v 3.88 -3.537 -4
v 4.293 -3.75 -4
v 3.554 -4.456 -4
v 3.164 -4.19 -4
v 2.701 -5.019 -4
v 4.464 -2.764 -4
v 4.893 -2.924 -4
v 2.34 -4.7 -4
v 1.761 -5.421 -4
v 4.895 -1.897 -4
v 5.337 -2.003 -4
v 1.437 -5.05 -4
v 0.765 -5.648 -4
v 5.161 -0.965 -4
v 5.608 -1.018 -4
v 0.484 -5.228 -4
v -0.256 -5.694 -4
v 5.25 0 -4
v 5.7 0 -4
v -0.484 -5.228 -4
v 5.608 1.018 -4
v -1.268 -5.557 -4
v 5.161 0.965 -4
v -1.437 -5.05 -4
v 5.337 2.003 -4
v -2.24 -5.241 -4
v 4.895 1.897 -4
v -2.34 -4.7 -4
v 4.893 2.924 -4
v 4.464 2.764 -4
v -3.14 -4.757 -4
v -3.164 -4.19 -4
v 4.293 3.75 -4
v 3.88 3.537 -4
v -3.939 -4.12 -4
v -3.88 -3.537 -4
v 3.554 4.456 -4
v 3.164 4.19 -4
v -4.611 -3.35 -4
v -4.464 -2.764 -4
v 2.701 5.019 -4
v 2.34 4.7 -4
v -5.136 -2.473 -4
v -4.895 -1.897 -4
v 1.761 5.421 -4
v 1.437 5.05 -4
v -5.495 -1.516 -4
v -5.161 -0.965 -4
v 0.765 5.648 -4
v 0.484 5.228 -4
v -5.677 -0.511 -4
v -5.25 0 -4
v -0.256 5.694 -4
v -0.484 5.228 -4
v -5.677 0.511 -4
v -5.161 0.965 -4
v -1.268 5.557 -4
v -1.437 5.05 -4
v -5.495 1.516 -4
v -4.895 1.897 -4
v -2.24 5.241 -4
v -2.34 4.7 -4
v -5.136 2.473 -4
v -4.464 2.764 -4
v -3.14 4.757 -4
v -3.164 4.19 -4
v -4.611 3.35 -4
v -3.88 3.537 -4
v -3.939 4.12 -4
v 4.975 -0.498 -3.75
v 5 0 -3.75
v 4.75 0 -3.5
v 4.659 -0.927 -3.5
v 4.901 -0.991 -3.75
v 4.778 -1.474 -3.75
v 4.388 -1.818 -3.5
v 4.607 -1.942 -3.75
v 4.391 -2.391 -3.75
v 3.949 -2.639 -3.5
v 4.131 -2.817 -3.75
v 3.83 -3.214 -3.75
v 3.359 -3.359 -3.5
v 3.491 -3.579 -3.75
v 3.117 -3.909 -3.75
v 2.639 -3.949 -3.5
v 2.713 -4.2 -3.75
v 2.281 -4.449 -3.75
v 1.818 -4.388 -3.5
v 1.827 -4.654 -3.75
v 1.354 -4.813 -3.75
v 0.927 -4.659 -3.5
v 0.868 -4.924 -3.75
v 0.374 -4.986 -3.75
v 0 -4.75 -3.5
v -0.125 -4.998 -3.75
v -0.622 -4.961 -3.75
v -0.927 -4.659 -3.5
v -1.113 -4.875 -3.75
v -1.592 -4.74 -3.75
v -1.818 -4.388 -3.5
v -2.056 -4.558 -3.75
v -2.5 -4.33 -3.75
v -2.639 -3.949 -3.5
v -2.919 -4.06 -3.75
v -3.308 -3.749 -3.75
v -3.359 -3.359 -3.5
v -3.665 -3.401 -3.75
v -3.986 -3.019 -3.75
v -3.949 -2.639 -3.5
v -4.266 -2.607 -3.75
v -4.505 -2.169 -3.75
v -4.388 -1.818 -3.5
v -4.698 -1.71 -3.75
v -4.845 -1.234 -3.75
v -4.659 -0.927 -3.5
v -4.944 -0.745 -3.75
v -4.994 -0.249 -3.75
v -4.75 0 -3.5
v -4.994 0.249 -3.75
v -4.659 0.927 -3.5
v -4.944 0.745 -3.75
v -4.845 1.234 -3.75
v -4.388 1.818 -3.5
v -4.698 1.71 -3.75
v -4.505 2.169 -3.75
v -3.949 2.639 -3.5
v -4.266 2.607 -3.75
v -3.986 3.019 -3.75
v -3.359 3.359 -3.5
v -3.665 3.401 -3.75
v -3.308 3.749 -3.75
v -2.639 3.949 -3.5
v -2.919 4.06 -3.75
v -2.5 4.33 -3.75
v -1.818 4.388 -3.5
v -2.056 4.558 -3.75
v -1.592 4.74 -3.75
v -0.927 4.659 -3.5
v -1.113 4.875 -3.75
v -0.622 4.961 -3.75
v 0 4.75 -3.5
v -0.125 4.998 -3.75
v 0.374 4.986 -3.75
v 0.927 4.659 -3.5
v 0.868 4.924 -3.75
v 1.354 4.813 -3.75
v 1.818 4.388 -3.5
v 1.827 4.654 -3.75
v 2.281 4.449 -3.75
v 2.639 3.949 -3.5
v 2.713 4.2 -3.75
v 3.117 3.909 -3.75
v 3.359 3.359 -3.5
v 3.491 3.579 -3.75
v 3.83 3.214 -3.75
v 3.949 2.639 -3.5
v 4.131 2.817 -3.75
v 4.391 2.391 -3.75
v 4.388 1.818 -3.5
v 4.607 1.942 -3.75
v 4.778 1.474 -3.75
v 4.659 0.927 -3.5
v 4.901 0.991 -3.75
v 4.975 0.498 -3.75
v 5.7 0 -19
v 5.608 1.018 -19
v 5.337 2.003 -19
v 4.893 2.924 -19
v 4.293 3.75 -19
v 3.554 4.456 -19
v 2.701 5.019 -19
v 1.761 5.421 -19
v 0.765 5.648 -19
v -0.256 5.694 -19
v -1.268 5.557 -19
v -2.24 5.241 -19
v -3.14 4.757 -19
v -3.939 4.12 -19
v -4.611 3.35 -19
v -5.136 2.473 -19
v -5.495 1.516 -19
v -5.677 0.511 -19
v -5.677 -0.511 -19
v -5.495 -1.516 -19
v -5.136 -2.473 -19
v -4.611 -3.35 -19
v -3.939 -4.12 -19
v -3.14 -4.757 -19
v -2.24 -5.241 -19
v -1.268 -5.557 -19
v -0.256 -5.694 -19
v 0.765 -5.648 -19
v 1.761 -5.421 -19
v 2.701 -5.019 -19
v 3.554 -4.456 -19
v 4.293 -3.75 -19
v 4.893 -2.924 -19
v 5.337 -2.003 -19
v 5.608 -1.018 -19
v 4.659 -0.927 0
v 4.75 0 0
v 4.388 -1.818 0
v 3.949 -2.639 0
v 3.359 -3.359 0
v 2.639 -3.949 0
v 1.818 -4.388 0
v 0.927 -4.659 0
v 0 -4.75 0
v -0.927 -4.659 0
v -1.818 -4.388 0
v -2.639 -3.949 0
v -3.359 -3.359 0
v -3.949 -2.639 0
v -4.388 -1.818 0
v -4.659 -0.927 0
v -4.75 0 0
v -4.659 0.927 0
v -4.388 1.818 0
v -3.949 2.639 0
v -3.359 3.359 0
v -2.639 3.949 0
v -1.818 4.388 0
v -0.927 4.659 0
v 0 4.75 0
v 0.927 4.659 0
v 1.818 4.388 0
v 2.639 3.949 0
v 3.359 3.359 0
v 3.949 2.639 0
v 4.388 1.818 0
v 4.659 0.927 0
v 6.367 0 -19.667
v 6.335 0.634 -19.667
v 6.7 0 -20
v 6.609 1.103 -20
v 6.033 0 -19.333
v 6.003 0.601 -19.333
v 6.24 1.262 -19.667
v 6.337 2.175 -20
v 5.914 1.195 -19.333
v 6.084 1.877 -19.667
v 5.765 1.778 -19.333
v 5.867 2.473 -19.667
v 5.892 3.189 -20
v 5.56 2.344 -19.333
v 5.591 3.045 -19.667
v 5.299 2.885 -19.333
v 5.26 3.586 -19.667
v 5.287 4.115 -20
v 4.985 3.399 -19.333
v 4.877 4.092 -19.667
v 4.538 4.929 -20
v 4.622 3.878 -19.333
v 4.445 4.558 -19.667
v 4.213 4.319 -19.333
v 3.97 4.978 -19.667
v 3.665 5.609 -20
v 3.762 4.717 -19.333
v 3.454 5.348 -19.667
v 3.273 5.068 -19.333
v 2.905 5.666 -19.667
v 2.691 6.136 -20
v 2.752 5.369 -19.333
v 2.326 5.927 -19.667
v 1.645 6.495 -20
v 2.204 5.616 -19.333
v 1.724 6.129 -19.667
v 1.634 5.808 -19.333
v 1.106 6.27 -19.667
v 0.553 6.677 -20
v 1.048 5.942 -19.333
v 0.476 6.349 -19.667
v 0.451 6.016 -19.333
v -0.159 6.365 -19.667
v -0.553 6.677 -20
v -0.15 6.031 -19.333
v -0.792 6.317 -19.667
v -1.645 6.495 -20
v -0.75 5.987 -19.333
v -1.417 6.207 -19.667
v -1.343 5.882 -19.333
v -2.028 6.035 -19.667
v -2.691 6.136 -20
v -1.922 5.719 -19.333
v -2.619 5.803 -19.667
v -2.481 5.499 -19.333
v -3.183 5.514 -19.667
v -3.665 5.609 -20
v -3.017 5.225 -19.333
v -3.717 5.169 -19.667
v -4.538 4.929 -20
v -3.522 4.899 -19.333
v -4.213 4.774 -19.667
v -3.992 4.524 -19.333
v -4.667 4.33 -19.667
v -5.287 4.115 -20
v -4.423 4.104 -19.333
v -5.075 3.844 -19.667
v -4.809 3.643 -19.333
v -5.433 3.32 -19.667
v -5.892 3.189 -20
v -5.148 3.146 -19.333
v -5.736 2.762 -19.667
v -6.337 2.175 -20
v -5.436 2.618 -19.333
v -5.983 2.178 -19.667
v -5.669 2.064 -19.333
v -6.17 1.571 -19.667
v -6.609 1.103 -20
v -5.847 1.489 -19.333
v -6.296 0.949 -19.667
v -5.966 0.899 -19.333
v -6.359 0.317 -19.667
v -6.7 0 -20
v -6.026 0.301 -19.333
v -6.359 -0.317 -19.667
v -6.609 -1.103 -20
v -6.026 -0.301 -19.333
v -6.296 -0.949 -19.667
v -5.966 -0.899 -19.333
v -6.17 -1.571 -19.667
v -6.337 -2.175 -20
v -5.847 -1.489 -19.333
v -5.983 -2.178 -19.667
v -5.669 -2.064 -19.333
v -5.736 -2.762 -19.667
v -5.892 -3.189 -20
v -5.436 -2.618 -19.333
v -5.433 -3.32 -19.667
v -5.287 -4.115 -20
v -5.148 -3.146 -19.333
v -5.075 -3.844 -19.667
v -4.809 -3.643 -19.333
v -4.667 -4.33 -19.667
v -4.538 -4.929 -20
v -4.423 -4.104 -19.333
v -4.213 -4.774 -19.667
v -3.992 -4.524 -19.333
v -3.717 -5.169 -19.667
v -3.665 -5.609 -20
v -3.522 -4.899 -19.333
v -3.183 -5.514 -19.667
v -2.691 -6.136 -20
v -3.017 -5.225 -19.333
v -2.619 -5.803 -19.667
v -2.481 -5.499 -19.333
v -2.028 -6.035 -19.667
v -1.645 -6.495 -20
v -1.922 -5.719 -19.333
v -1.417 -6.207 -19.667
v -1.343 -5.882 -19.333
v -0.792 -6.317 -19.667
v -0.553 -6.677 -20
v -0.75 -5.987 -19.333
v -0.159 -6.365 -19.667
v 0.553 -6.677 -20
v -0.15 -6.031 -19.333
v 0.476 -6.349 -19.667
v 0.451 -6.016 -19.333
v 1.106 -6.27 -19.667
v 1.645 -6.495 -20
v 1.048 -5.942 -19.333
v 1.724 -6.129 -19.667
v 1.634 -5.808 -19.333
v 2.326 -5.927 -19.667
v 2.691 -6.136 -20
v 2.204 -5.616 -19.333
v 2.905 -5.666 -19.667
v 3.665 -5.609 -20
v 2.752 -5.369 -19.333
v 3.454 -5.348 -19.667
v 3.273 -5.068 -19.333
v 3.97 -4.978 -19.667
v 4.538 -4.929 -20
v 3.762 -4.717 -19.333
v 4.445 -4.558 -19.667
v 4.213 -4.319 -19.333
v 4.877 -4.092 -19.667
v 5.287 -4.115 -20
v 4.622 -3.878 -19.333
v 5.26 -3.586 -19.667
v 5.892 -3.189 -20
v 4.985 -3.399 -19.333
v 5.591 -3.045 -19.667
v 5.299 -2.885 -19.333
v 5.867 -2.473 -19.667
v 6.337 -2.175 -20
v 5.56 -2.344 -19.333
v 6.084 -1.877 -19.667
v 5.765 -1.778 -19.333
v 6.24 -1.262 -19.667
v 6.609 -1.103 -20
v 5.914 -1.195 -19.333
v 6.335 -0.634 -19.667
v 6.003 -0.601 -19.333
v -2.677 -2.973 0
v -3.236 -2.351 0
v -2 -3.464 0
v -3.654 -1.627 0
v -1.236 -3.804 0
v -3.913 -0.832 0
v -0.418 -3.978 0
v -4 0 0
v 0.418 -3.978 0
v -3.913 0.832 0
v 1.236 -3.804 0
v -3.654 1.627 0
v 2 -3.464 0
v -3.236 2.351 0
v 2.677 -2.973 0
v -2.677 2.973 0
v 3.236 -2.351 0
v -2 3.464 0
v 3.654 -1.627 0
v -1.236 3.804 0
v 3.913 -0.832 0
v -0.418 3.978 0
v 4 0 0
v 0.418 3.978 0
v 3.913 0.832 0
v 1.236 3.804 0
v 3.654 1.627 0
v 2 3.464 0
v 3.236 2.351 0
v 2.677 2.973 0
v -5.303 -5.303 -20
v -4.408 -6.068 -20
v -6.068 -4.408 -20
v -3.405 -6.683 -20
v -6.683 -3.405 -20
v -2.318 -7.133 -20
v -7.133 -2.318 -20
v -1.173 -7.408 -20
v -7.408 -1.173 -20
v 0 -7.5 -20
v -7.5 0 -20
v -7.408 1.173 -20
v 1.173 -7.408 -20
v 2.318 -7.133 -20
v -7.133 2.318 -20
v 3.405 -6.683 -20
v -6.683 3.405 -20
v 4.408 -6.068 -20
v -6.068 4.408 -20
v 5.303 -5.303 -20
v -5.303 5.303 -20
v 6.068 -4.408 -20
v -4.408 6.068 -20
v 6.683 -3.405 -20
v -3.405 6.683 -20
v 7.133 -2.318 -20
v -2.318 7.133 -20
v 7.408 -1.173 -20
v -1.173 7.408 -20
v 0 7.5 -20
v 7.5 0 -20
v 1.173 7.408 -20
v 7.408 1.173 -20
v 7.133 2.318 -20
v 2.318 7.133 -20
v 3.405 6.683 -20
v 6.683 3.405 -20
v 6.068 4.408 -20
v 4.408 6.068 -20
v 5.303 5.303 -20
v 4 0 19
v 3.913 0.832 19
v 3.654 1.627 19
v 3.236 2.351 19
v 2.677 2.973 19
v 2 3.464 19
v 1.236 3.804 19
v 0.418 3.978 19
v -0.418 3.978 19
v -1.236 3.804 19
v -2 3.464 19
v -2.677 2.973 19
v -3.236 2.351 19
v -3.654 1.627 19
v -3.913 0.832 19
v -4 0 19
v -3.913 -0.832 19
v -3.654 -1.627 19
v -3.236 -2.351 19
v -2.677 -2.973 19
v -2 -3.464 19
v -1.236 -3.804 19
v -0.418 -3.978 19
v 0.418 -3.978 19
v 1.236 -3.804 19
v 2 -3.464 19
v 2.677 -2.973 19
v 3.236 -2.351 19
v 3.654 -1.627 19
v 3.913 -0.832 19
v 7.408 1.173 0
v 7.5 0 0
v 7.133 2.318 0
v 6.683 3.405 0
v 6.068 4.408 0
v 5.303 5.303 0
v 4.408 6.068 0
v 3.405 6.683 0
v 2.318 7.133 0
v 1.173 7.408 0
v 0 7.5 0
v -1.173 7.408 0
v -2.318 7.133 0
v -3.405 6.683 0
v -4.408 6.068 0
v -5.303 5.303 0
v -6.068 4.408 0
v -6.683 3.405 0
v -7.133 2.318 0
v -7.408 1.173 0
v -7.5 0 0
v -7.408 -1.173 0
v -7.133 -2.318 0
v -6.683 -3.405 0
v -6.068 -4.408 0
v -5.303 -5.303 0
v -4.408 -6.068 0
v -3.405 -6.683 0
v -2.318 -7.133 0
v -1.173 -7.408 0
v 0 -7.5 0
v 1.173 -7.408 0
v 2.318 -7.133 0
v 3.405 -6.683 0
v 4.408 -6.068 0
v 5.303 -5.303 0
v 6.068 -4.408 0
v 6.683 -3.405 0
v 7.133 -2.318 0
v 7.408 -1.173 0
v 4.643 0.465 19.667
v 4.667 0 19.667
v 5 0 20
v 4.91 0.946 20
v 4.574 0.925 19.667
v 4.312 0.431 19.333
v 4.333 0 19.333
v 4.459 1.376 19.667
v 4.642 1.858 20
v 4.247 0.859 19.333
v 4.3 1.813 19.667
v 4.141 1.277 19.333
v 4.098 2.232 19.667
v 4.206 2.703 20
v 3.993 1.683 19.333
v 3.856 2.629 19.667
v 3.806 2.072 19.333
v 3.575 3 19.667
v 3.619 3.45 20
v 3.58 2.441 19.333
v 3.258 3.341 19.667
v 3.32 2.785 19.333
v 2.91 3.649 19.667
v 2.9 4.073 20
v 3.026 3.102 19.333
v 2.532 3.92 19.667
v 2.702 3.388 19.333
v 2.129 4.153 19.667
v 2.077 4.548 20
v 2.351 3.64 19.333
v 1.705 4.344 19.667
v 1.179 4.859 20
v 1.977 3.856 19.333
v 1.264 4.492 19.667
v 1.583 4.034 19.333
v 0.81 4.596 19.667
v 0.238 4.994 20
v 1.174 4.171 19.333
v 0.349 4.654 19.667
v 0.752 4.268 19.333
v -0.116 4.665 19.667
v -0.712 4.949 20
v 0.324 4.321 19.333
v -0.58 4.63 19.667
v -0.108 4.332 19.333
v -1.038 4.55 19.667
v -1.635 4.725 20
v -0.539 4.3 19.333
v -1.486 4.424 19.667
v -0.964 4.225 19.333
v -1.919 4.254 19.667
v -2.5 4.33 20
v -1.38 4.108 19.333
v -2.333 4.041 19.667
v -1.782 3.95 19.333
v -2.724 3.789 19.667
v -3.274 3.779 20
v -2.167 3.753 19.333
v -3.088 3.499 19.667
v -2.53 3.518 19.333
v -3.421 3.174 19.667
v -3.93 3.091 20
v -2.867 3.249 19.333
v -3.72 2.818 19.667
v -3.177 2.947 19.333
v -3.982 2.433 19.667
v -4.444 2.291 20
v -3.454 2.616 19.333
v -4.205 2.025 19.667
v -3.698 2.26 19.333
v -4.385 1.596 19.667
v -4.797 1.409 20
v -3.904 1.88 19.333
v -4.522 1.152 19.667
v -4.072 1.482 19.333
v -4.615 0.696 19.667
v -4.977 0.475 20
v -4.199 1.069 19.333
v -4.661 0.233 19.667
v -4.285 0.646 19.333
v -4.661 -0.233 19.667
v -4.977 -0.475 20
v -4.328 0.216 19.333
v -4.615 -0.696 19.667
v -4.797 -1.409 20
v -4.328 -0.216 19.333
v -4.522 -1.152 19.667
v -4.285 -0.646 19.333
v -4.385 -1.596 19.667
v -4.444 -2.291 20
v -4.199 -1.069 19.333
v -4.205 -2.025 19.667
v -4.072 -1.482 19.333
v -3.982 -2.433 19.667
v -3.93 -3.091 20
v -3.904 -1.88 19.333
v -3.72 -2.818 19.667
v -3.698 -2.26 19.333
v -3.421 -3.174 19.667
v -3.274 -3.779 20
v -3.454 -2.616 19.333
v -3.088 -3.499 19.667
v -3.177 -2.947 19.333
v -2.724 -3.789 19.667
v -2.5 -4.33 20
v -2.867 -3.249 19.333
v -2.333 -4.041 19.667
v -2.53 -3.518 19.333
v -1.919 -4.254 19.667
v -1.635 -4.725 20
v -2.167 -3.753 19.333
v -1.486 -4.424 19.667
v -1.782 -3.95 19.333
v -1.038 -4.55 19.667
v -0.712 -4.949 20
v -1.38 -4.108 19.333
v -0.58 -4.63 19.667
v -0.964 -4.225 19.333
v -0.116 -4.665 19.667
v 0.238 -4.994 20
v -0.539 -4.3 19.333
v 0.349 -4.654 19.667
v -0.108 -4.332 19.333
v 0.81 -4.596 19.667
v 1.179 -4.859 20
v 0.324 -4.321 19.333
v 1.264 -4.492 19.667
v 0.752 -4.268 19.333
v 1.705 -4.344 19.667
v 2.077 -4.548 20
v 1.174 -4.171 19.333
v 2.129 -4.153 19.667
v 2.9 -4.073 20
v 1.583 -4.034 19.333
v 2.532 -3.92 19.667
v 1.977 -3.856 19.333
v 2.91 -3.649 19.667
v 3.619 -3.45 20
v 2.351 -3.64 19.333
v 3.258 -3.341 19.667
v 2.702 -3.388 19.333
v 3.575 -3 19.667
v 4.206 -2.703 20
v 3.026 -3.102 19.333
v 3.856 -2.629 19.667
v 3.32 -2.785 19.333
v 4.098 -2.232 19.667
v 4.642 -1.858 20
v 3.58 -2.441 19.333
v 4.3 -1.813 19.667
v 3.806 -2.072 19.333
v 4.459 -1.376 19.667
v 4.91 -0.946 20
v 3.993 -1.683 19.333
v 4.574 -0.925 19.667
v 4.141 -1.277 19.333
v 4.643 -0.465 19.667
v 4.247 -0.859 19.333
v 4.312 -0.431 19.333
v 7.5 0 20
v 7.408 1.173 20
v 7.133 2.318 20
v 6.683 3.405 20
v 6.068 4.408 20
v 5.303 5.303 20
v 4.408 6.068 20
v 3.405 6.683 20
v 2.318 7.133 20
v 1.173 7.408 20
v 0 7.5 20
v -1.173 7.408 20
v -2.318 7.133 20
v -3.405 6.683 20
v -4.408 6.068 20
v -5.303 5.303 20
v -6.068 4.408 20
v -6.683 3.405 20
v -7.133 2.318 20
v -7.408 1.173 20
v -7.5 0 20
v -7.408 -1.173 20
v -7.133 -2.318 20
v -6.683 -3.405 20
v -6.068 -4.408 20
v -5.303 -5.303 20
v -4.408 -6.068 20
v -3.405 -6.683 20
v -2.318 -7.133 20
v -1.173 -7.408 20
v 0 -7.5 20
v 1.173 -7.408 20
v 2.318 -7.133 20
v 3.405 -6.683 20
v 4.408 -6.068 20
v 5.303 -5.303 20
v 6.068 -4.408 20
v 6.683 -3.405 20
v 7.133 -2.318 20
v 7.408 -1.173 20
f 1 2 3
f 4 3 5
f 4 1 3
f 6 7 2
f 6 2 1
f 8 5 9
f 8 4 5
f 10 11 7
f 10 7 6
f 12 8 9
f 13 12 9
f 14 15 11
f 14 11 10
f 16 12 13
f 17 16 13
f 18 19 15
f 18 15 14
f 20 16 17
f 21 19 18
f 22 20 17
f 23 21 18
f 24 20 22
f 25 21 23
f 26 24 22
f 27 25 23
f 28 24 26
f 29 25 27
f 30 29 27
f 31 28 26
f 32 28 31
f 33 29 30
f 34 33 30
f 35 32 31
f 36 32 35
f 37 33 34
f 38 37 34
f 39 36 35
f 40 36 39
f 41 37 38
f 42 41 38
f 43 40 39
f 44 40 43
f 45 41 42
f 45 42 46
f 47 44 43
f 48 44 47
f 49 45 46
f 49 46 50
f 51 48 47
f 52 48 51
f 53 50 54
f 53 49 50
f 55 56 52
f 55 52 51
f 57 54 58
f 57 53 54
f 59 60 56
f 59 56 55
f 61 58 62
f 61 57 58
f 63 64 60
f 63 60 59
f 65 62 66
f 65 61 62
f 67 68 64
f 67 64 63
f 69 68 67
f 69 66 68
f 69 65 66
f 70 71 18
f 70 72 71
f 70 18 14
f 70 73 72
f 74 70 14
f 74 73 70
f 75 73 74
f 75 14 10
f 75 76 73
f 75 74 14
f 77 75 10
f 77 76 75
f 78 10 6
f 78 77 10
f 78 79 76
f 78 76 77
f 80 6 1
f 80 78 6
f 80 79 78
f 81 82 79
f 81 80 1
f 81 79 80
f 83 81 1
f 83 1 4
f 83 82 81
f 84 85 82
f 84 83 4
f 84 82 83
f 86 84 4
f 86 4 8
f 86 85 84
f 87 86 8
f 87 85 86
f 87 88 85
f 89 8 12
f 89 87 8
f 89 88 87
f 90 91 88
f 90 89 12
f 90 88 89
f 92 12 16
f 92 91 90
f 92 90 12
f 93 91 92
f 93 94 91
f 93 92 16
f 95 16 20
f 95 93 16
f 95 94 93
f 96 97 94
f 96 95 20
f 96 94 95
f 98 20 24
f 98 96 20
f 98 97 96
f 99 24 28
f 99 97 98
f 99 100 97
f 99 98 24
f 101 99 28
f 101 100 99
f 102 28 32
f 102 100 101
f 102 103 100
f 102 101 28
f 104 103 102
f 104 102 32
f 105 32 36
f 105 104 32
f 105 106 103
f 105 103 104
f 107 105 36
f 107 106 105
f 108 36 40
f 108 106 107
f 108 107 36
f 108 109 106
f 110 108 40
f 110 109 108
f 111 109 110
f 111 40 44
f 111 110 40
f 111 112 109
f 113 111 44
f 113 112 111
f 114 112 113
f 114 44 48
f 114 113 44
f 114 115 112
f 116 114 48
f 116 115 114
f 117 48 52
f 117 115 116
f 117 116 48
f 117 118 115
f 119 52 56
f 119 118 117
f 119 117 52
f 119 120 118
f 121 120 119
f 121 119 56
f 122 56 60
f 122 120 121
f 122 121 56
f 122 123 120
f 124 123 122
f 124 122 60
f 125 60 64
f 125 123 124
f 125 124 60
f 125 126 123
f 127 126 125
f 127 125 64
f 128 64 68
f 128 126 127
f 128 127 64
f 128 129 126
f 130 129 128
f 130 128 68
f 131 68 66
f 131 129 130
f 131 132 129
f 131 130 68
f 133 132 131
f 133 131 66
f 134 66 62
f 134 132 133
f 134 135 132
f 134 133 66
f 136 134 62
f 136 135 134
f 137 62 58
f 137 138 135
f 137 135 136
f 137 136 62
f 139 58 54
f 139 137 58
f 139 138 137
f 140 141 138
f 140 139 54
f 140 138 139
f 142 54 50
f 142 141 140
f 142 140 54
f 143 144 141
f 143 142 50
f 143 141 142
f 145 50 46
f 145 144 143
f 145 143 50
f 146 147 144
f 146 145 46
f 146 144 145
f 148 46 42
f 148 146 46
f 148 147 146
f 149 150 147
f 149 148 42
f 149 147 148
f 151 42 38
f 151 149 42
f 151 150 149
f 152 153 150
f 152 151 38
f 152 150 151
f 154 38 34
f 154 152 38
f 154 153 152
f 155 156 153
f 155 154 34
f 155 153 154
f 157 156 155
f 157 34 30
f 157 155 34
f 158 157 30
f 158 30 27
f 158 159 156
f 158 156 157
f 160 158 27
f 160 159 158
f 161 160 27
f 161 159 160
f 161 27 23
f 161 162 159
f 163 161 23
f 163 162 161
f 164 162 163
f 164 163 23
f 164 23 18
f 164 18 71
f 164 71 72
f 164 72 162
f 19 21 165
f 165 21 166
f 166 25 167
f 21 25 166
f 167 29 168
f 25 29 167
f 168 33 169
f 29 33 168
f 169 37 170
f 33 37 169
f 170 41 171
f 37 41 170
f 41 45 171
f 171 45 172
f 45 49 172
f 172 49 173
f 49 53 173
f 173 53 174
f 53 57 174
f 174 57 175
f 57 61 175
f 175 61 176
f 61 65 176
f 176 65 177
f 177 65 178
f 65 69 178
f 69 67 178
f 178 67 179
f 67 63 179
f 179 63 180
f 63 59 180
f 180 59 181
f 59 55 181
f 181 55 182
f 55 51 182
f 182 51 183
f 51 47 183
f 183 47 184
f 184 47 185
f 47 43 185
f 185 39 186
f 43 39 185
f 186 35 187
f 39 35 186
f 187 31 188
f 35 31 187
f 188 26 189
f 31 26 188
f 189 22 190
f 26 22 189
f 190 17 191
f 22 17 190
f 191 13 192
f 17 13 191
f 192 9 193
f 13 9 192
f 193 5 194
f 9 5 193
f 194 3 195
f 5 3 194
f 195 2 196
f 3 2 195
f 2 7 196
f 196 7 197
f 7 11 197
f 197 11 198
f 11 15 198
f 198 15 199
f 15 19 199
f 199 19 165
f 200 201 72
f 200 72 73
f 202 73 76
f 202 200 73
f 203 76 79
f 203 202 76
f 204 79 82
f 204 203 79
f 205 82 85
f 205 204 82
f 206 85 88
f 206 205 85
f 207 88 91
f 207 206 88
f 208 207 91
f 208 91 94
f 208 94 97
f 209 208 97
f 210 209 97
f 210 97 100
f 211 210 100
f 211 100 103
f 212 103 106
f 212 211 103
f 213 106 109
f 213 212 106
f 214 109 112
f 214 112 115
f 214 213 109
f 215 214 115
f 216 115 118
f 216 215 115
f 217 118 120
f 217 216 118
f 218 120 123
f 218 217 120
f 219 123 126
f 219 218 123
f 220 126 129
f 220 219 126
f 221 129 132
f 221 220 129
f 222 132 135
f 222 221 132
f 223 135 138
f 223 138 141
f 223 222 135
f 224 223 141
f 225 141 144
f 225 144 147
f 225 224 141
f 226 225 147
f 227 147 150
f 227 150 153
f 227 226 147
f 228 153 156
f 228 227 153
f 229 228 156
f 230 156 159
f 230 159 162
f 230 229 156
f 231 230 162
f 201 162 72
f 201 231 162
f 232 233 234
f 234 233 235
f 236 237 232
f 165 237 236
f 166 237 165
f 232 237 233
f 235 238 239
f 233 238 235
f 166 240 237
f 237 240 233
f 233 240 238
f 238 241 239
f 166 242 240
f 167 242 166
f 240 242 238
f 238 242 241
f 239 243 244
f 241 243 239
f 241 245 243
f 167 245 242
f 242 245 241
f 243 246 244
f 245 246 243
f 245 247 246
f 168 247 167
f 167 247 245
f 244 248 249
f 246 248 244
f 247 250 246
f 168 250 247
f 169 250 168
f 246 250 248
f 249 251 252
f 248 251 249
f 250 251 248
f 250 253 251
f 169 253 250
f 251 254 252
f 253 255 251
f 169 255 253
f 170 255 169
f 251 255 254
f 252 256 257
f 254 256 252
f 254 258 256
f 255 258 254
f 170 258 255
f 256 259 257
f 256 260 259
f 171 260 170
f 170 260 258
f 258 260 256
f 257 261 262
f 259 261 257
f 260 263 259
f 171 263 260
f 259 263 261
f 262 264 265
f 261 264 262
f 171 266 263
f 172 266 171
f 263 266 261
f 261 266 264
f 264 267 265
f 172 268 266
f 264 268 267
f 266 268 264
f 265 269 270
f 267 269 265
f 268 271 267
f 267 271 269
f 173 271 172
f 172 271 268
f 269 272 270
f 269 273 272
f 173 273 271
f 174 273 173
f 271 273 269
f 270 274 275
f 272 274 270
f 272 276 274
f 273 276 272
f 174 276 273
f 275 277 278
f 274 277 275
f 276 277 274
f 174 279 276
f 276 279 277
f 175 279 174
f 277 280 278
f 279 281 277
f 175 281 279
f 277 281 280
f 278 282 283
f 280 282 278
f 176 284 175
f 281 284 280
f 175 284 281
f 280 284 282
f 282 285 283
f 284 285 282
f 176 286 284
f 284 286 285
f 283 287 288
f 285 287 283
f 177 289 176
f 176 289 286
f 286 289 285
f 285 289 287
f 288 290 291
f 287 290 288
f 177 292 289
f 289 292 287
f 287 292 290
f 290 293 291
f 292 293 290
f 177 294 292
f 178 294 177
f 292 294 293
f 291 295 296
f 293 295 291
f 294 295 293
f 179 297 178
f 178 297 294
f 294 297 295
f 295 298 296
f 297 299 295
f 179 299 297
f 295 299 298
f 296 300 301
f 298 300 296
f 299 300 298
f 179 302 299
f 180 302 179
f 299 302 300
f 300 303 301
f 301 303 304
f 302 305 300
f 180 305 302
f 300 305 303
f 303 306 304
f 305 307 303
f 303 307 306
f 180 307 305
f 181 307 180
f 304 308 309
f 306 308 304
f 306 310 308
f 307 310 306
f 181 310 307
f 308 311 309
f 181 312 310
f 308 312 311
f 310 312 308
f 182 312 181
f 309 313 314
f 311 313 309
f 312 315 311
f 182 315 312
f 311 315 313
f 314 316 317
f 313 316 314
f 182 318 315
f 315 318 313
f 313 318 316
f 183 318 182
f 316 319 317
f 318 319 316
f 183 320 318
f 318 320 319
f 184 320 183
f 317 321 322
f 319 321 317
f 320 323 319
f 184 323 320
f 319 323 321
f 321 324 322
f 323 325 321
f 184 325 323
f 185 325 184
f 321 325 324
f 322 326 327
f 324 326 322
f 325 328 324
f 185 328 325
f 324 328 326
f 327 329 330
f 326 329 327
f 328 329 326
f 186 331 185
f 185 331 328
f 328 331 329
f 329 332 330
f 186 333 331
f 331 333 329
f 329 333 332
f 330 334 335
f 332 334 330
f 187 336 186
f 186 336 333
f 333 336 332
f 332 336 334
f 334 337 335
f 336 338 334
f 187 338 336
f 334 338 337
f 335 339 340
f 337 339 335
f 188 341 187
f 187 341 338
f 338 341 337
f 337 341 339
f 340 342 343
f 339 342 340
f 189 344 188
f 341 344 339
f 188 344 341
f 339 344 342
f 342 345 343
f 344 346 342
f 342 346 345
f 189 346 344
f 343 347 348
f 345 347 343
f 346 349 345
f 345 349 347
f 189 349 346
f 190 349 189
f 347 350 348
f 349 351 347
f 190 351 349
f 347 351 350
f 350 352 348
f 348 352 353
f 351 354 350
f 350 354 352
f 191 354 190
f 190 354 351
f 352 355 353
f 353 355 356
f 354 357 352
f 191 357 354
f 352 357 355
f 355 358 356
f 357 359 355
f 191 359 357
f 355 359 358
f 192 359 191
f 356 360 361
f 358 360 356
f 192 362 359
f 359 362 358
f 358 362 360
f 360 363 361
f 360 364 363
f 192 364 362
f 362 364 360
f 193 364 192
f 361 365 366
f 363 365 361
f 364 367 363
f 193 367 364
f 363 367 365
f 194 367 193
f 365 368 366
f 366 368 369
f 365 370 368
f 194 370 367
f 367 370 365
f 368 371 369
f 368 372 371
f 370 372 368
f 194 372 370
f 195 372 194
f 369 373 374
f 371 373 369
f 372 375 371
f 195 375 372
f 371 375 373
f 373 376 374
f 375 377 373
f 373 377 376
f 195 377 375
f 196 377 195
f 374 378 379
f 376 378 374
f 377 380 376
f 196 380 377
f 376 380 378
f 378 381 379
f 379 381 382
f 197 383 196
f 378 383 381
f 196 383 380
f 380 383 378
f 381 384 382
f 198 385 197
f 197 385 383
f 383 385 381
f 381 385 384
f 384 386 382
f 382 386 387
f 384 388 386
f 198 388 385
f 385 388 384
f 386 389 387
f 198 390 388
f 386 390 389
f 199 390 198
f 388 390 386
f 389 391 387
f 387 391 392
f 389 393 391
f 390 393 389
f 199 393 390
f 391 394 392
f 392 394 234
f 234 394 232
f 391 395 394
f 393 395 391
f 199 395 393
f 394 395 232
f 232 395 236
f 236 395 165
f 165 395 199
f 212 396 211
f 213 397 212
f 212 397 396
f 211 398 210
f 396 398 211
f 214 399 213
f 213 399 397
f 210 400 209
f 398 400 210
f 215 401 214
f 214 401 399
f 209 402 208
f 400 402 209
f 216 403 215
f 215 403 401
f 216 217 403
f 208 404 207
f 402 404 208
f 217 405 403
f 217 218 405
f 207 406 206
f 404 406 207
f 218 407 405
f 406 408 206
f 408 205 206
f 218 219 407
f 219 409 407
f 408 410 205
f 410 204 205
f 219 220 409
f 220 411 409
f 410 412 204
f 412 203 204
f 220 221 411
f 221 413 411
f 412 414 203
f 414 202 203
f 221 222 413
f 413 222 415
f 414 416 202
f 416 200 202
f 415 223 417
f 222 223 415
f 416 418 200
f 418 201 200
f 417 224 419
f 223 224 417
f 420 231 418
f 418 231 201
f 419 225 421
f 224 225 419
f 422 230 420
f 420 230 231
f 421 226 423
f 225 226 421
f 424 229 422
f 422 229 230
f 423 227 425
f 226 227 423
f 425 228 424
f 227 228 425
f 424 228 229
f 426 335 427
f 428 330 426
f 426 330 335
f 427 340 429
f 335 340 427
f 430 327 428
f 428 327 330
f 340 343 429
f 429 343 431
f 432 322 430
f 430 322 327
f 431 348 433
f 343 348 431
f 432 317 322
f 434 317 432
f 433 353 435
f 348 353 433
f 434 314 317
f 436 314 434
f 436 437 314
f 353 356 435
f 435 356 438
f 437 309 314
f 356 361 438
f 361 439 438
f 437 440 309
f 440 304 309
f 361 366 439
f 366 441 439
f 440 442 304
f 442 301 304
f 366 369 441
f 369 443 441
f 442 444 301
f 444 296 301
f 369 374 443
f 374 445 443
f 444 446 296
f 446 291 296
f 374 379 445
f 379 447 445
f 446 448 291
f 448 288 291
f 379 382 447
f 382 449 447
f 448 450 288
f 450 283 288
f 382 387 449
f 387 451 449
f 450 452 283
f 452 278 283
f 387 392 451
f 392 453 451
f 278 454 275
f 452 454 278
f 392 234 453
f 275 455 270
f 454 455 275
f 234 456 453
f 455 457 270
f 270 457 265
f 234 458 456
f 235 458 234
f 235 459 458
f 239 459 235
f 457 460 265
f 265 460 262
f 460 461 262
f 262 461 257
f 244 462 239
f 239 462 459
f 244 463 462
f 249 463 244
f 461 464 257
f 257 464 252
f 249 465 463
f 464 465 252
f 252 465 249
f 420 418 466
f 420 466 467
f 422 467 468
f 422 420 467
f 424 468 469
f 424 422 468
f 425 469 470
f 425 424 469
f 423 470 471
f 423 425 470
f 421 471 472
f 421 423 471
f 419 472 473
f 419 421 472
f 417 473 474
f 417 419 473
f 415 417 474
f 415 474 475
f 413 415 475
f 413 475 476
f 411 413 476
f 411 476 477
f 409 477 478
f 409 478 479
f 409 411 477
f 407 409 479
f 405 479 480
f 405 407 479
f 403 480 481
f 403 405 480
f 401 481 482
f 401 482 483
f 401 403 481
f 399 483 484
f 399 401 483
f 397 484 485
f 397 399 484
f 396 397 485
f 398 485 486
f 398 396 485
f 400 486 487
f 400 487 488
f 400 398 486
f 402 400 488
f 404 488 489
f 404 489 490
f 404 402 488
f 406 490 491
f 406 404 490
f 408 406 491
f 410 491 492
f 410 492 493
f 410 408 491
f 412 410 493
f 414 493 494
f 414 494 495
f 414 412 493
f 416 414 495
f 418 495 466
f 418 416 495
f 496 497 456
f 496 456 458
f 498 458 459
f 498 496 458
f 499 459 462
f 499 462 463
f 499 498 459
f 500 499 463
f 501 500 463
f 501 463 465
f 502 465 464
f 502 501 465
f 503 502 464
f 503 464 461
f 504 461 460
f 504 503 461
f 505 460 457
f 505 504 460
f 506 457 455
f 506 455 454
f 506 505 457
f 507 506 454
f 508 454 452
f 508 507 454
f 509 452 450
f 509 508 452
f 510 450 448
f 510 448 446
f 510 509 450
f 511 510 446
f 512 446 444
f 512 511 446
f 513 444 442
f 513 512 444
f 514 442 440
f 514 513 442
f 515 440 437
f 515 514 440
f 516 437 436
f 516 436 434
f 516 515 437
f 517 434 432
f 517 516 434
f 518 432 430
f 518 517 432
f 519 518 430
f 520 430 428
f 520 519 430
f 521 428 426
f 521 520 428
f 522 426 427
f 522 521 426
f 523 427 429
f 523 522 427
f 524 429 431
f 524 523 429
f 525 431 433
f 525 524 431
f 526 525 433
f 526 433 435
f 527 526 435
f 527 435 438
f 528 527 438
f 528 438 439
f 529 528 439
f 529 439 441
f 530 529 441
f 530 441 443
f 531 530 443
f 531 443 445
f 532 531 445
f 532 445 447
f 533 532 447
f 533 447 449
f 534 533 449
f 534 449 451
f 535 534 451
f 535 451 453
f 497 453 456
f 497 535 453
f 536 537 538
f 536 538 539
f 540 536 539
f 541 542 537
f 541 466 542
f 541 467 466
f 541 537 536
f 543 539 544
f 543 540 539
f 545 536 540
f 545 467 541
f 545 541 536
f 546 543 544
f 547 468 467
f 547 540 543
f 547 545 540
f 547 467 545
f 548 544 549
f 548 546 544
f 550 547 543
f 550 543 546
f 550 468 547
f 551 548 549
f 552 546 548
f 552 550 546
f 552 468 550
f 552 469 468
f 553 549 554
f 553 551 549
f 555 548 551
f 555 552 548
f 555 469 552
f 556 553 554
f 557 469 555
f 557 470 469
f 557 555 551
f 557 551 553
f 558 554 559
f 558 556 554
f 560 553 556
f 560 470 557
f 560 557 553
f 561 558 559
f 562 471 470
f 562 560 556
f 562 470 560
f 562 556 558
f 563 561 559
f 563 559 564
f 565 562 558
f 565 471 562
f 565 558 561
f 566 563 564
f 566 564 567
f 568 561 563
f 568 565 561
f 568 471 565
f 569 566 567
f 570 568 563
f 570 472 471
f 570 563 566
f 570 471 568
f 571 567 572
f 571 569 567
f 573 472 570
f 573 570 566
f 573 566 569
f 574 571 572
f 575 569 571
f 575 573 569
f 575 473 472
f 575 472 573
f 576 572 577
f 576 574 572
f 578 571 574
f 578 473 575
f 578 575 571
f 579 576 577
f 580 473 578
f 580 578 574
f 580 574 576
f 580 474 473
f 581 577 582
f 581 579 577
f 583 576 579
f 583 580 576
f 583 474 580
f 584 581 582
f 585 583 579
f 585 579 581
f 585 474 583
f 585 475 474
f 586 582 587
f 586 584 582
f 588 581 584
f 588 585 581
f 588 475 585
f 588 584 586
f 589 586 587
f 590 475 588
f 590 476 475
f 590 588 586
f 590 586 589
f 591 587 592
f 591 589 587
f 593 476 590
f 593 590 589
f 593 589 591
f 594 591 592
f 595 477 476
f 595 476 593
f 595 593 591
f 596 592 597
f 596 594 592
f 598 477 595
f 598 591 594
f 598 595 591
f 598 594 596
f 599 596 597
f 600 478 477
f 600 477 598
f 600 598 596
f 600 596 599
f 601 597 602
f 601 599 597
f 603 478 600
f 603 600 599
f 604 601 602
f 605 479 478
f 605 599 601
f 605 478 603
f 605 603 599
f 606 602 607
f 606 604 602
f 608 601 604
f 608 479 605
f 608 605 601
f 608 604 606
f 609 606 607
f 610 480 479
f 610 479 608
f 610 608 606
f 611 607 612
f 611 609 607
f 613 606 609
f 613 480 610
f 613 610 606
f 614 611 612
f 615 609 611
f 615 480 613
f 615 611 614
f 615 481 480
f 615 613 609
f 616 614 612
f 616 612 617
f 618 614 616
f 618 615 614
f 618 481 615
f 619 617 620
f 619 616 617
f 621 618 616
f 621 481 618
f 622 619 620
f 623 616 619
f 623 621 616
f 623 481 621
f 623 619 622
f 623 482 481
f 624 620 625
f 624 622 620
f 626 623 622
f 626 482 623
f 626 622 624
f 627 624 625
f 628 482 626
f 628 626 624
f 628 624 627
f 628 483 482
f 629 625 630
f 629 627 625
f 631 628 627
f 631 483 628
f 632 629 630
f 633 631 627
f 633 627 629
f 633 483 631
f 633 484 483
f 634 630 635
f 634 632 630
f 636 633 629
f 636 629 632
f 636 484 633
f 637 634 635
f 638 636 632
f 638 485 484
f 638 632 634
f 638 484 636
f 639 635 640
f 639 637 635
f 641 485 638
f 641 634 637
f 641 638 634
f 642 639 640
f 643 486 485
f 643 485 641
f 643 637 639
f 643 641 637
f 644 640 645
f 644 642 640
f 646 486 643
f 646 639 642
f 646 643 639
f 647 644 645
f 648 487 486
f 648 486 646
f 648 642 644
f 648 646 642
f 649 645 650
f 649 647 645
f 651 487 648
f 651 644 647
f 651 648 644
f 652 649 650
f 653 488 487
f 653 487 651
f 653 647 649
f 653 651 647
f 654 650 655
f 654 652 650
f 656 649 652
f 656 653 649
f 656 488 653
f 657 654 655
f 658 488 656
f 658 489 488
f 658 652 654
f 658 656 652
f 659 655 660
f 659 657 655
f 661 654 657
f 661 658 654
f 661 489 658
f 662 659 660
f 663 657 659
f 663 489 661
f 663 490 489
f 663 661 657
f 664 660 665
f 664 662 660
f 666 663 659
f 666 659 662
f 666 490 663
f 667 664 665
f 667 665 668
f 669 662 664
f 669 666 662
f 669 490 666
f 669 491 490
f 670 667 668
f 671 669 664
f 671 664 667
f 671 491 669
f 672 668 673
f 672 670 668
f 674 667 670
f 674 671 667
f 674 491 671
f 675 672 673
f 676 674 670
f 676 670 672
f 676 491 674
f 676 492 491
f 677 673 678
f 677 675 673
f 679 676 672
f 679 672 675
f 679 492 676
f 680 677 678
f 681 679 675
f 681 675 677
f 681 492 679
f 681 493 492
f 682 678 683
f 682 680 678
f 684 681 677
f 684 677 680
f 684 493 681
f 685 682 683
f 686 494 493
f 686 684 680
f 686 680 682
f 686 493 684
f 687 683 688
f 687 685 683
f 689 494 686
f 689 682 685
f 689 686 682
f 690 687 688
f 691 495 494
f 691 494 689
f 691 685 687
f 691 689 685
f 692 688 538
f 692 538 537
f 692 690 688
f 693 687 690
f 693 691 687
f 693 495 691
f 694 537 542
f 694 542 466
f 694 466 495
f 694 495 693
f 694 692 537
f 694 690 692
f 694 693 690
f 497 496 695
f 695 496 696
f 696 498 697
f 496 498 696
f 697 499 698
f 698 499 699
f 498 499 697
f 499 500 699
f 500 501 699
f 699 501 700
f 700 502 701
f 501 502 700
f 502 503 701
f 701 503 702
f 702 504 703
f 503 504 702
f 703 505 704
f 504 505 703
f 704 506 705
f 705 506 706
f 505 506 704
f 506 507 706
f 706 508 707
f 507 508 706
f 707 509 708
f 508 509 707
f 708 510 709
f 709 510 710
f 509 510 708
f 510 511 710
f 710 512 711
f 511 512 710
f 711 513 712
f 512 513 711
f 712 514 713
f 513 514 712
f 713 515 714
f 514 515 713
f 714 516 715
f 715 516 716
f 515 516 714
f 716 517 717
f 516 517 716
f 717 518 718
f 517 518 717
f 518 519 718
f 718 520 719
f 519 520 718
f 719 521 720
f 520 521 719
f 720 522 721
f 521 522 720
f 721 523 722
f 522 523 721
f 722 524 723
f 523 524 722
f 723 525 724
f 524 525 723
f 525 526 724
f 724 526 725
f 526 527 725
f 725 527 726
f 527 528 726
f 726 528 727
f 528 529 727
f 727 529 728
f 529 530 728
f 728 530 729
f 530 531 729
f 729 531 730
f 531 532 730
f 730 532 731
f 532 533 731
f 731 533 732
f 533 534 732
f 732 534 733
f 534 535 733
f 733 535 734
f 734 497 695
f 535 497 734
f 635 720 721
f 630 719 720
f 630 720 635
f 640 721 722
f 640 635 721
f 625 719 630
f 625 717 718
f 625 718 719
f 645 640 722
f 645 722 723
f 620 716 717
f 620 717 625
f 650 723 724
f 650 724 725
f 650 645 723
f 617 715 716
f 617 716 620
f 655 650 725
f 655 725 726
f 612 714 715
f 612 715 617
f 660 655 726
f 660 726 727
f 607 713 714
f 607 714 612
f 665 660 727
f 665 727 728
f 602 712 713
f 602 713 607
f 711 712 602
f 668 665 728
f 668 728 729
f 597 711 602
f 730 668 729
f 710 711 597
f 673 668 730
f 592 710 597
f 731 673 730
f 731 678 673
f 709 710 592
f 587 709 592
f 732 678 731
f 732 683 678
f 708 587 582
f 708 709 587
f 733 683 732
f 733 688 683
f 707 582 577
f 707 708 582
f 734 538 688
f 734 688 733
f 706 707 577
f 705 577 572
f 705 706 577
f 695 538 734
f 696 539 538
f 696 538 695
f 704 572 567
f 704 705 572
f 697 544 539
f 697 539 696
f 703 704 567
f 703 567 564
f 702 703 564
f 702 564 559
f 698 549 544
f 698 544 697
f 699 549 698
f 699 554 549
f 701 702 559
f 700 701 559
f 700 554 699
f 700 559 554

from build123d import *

# Parameters (mm, degrees)
SKETCH_R        = 7.5
SKETCH_R_2      = 4
PAD_DEPTH       = 20
SKETCH001_R     = 7.5
SKETCH001_R_2   = 5.7
PAD001_DEPTH    = 20
CHAMFER_SIZE    = 1
CHAMFER001_SIZE = 1
SKETCH002_R     = 5.75
SKETCH002_R_2   = 4.75
PAD002_DEPTH    = 4
CHAMFER002_SIZE = 0.5


with BuildPart() as part:
    # Sketch → Pad (new body)
    with BuildSketch(Plane.XY):
        Circle(SKETCH_R)
        Circle(SKETCH_R_2, mode=Mode.SUBTRACT)
    extrude(amount=PAD_DEPTH)

    # Sketch001 → Pad001 (join)
    with BuildSketch(Plane.XY):
        Circle(SKETCH001_R)
        Circle(SKETCH001_R_2, mode=Mode.SUBTRACT)
    extrude(amount=-PAD001_DEPTH)

    # Chamfer
    chamfer_edges = [part.edges().sort_by_distance(p)[0] for p in [
        (-4, 0, 20),
    ]]
    chamfer(chamfer_edges, length=CHAMFER_SIZE)

    # Chamfer001
    chamfer001_edges = [part.edges().sort_by_distance(p)[0] for p in [
        (-5.7, 0, -20),
    ]]
    chamfer(chamfer001_edges, length=CHAMFER001_SIZE)

    # Sketch002 (on Face6 of Chamfer001) → Pad002 (join)
    with BuildSketch(Plane(origin=(0, 0, 0), x_dir=(1, 0, 0), z_dir=(0, 0, -1))):
        Circle(SKETCH002_R)
        Circle(SKETCH002_R_2, mode=Mode.SUBTRACT)
    extrude(amount=PAD002_DEPTH)

    # Chamfer002
    chamfer002_edges = [part.edges().sort_by_distance(p)[0] for p in [
        (-4.75, 0, -4),
    ]]
    chamfer(chamfer002_edges, length=CHAMFER002_SIZE)


solid = part.part
